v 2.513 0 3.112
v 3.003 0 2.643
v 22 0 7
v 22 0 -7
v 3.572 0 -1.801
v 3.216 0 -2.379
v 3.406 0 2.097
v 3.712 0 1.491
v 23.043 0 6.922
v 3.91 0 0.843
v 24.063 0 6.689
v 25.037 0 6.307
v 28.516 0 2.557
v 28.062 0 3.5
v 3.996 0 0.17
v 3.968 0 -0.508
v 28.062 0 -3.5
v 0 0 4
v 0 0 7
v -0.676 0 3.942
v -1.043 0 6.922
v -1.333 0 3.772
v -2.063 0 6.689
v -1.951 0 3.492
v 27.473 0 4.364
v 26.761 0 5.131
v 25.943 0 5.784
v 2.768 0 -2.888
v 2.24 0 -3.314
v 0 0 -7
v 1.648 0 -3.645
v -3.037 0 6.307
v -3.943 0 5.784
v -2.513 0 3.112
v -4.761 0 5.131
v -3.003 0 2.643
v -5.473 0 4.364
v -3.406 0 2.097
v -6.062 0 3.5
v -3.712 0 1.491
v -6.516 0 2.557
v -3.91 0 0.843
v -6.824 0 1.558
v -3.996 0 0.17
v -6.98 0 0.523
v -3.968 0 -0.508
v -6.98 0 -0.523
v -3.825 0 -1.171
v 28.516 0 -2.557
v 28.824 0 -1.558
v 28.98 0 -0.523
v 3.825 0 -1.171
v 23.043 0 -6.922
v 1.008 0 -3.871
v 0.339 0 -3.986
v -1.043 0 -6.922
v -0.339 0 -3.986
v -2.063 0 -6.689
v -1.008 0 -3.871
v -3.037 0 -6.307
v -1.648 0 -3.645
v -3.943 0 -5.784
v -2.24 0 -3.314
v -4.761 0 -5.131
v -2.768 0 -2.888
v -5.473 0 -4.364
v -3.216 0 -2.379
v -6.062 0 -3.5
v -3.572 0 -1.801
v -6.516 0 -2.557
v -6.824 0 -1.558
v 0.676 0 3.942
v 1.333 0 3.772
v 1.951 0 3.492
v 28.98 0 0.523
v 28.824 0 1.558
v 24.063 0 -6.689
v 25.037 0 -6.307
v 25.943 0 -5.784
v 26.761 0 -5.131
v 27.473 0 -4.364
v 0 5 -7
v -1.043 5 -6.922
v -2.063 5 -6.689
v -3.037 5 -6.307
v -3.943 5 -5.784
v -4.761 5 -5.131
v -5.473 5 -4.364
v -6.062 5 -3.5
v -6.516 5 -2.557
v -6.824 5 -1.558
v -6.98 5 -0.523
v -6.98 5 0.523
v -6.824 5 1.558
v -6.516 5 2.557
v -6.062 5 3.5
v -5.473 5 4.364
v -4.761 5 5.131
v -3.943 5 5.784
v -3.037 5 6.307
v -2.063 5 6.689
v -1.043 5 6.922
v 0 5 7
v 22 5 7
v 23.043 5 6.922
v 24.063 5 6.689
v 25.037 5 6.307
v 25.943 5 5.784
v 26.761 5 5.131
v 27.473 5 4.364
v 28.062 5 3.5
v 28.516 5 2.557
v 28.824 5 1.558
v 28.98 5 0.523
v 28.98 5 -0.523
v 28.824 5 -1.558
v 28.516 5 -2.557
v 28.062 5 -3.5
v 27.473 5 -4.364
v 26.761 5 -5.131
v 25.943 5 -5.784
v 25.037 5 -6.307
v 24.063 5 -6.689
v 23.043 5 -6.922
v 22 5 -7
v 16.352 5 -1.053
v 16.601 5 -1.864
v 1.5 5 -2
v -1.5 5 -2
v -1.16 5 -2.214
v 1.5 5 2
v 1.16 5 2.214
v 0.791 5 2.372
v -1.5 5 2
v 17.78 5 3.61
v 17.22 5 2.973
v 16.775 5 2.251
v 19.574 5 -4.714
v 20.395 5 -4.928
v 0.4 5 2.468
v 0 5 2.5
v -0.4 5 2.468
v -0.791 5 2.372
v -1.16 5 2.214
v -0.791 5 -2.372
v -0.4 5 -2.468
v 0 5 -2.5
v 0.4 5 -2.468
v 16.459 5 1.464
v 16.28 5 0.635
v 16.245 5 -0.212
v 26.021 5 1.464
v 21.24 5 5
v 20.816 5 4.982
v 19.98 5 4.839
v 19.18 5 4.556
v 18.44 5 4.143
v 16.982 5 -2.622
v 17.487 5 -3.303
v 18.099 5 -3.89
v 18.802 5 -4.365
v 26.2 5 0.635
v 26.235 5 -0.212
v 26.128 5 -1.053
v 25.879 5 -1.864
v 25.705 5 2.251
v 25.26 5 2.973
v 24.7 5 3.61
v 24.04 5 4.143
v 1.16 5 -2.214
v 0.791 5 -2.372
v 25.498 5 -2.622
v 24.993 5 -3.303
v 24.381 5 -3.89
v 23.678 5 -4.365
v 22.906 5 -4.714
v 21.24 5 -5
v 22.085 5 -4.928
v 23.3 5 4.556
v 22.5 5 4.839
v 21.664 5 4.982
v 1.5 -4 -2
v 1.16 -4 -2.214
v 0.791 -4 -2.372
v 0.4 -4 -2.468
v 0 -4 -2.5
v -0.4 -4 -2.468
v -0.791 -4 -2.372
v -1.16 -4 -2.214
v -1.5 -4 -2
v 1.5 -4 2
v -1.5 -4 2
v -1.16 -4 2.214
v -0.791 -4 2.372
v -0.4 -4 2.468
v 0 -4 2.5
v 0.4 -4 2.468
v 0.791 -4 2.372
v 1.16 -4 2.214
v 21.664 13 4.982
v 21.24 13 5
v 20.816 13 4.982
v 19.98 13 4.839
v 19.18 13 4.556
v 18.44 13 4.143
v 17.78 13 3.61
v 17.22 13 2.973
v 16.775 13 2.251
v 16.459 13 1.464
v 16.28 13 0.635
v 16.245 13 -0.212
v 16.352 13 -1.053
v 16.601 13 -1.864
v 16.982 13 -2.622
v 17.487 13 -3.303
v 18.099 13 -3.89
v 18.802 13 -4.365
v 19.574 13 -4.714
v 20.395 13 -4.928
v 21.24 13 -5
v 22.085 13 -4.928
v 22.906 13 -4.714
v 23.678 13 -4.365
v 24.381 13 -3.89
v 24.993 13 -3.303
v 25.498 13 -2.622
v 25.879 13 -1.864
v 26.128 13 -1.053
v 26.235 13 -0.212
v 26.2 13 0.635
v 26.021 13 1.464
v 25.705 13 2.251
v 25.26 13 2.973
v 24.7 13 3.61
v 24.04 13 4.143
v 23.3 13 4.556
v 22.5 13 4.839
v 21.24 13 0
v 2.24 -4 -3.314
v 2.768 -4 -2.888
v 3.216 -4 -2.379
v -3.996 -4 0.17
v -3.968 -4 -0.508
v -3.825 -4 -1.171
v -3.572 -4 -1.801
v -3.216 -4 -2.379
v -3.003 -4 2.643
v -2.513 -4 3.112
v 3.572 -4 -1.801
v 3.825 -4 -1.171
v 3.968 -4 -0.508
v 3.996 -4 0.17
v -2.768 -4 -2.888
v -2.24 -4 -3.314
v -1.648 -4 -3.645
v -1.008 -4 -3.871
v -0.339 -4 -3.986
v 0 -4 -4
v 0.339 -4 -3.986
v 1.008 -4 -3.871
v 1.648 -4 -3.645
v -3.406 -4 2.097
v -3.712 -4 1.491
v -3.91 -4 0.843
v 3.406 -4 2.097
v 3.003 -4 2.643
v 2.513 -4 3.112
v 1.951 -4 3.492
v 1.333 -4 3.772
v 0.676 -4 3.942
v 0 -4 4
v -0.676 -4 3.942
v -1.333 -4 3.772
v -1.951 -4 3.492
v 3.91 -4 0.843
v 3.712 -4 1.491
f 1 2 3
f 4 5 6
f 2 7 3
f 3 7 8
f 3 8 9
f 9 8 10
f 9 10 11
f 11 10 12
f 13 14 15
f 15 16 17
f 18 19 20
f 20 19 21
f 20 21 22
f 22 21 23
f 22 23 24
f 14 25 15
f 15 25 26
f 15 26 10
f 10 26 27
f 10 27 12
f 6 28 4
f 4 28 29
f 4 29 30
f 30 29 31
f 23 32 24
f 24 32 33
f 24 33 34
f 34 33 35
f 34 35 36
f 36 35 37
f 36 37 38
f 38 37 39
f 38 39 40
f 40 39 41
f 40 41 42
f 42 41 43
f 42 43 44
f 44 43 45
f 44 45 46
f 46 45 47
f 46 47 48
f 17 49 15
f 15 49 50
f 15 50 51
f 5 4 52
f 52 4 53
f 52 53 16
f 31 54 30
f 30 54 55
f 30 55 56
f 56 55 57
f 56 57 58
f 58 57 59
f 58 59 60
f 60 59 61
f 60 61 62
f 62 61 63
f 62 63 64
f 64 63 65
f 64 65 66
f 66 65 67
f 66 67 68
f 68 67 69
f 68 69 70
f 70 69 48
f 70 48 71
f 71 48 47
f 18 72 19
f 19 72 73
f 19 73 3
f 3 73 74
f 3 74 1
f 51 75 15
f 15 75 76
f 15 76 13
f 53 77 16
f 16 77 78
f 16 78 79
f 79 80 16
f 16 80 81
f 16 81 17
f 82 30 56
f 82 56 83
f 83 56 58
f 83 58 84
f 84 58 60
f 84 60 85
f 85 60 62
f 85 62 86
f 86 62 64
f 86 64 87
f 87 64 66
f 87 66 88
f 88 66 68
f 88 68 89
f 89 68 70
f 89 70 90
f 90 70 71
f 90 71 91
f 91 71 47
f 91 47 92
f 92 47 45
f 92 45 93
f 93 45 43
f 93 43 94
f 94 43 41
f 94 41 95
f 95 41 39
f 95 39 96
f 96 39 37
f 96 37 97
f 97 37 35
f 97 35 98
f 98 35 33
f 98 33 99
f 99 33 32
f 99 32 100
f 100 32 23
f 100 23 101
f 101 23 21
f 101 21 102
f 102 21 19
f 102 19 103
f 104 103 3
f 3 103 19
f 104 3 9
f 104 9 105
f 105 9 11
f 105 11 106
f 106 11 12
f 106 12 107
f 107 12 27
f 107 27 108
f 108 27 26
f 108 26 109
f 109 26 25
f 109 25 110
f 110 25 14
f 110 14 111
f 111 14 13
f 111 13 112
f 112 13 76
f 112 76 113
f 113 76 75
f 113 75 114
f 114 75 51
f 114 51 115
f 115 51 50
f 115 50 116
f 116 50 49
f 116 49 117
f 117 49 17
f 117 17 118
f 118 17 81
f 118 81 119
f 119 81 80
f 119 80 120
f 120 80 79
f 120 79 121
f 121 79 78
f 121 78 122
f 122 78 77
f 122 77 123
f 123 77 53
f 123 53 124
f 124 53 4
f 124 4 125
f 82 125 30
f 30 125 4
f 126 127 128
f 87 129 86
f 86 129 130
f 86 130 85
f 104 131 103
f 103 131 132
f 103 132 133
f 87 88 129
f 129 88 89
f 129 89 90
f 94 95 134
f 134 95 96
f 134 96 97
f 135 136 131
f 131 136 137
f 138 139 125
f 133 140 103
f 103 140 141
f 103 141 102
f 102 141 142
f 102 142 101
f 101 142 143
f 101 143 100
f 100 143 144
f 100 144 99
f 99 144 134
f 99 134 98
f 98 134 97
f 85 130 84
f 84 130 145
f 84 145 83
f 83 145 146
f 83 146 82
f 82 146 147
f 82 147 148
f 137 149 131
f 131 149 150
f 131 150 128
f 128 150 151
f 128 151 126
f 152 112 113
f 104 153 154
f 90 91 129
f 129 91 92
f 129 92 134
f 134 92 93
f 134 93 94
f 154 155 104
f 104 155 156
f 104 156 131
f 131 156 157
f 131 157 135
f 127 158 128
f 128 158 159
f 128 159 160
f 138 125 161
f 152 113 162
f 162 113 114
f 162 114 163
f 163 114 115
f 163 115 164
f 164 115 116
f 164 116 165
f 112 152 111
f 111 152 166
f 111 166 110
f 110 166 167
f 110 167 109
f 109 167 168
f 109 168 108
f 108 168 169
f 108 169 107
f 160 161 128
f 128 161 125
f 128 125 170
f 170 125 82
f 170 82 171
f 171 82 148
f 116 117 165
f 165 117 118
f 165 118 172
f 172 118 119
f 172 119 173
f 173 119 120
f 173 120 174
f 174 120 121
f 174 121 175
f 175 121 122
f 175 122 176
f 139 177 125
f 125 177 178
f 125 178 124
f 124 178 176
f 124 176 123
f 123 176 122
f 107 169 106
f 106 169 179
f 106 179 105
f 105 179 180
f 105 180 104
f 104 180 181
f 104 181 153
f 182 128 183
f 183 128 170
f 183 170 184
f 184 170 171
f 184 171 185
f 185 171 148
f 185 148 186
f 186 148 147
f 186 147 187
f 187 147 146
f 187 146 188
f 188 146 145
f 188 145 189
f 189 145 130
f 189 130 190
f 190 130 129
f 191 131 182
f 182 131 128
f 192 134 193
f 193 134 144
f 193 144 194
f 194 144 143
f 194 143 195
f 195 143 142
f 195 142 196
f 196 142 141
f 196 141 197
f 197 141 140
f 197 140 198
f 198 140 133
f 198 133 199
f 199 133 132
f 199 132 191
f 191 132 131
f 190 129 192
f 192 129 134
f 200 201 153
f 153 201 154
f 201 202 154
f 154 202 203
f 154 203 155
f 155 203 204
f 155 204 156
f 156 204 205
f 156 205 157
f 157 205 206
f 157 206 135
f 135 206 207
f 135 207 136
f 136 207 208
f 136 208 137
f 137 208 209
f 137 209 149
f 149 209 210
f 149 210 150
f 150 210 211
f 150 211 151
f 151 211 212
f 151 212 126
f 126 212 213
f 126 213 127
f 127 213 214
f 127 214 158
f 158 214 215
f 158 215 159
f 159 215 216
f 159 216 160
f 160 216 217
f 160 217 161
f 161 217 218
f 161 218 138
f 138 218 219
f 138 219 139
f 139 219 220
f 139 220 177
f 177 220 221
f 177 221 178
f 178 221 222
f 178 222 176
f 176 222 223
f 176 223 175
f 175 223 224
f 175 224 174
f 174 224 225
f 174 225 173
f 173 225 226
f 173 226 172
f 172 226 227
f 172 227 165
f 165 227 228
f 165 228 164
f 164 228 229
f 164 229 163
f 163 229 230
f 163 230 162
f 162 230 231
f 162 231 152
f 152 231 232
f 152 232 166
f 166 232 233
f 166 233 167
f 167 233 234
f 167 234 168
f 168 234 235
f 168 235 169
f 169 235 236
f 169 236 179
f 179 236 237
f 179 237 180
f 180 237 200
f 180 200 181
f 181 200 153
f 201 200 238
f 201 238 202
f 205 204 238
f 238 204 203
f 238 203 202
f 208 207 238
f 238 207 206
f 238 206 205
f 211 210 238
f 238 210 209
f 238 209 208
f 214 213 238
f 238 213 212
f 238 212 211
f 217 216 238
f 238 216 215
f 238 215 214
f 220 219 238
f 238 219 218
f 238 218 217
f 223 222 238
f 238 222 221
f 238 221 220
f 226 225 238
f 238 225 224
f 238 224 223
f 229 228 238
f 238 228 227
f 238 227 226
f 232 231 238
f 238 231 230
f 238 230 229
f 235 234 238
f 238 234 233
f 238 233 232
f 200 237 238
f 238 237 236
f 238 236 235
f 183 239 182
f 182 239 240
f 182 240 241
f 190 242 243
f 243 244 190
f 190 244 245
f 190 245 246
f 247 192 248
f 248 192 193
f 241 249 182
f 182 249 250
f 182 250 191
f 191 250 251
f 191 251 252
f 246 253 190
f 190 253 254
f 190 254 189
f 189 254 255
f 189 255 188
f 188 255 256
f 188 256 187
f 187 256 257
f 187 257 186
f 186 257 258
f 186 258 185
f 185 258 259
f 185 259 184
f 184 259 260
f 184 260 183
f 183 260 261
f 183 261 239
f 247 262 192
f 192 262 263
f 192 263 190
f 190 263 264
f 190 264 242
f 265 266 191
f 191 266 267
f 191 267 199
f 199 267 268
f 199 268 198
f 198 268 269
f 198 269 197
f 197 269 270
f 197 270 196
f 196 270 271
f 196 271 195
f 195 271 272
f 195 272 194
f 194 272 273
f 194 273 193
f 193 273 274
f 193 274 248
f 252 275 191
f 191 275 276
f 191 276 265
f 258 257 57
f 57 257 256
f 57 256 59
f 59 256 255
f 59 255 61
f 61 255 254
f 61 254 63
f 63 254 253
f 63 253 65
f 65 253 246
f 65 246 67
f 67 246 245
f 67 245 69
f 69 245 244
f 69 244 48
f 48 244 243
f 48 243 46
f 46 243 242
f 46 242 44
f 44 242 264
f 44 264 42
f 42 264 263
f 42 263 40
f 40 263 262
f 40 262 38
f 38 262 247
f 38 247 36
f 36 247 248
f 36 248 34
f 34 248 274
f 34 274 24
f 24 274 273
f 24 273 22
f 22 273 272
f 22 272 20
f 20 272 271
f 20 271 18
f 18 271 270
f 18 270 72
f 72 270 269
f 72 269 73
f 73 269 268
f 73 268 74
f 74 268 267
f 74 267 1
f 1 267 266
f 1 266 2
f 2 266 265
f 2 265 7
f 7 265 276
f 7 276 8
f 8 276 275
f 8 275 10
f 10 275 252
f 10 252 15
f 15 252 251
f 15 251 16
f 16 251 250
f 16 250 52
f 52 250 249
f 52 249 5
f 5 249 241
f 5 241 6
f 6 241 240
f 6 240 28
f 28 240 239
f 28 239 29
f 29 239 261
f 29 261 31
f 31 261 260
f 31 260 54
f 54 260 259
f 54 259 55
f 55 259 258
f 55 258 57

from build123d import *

# Parameters (mm, degrees)
BOSS_EXTRUDE1_DEPTH = 5
CUT_EXTRUDE1_DEPTH  = 5
SKETCH3_R           = 5
BOSS_EXTRUDE2_DEPTH = 8
SKETCH5_R           = 4
BOSS_EXTRUDE4_DEPTH = 4


with BuildPart() as part:
    # Sketch1 → Boss-Extrude1 (new body)
    with BuildSketch(Plane(origin=(0, 0, 0), x_dir=(1, 0, 0), z_dir=(0, 1, 0))):
        with BuildLine():
            Line((0, 7), (22, 7))
            ThreePointArc((22, 7), (29, 0), (22, -7))
            Line((22, -7), (0, -7))
            ThreePointArc((0, -7), (-7, 0), (0, 7))
        make_face()
    extrude(amount=BOSS_EXTRUDE1_DEPTH)

    # Sketch2 → Cut-Extrude1 (cut)
    with BuildSketch(Plane(origin=(0, 5, 0), x_dir=(1, 0, 0), z_dir=(0, 1, 0))):
        with BuildLine():
            Line((1.5, 2), (1.5, -2))
            ThreePointArc((1.5, -2), (0, -2.5), (-1.5, -2))
            Line((-1.5, -2), (-1.5, 2))
            ThreePointArc((-1.5, 2), (0, 2.5), (1.5, 2))
        make_face()
    extrude(amount=-CUT_EXTRUDE1_DEPTH, mode=Mode.SUBTRACT)

    # Sketch3 → Boss-Extrude2 (add)
    with BuildSketch(Plane(origin=(0, 5, 0), x_dir=(1, 0, 0), z_dir=(0, 1, 0))):
        with Locations(Location((21.24, 0, 0), (0, 0, 270))):
            Circle(SKETCH3_R)
    extrude(amount=BOSS_EXTRUDE2_DEPTH)

    # Sketch5 → Boss-Extrude4 (add)
    with BuildSketch(Plane.XZ):
        with Locations(Location((0, 0, 0), (0, 0, 90))):
            Circle(SKETCH5_R)
        with BuildLine():
            Line((-1.5, 2), (-1.5, -2))
            ThreePointArc((-1.5, -2), (0, -2.5), (1.5, -2))
            Line((1.5, -2), (1.5, 2))
            ThreePointArc((1.5, 2), (0, 2.5), (-1.5, 2))
        make_face(mode=Mode.SUBTRACT)
    extrude(amount=BOSS_EXTRUDE4_DEPTH)


solid = part.part
